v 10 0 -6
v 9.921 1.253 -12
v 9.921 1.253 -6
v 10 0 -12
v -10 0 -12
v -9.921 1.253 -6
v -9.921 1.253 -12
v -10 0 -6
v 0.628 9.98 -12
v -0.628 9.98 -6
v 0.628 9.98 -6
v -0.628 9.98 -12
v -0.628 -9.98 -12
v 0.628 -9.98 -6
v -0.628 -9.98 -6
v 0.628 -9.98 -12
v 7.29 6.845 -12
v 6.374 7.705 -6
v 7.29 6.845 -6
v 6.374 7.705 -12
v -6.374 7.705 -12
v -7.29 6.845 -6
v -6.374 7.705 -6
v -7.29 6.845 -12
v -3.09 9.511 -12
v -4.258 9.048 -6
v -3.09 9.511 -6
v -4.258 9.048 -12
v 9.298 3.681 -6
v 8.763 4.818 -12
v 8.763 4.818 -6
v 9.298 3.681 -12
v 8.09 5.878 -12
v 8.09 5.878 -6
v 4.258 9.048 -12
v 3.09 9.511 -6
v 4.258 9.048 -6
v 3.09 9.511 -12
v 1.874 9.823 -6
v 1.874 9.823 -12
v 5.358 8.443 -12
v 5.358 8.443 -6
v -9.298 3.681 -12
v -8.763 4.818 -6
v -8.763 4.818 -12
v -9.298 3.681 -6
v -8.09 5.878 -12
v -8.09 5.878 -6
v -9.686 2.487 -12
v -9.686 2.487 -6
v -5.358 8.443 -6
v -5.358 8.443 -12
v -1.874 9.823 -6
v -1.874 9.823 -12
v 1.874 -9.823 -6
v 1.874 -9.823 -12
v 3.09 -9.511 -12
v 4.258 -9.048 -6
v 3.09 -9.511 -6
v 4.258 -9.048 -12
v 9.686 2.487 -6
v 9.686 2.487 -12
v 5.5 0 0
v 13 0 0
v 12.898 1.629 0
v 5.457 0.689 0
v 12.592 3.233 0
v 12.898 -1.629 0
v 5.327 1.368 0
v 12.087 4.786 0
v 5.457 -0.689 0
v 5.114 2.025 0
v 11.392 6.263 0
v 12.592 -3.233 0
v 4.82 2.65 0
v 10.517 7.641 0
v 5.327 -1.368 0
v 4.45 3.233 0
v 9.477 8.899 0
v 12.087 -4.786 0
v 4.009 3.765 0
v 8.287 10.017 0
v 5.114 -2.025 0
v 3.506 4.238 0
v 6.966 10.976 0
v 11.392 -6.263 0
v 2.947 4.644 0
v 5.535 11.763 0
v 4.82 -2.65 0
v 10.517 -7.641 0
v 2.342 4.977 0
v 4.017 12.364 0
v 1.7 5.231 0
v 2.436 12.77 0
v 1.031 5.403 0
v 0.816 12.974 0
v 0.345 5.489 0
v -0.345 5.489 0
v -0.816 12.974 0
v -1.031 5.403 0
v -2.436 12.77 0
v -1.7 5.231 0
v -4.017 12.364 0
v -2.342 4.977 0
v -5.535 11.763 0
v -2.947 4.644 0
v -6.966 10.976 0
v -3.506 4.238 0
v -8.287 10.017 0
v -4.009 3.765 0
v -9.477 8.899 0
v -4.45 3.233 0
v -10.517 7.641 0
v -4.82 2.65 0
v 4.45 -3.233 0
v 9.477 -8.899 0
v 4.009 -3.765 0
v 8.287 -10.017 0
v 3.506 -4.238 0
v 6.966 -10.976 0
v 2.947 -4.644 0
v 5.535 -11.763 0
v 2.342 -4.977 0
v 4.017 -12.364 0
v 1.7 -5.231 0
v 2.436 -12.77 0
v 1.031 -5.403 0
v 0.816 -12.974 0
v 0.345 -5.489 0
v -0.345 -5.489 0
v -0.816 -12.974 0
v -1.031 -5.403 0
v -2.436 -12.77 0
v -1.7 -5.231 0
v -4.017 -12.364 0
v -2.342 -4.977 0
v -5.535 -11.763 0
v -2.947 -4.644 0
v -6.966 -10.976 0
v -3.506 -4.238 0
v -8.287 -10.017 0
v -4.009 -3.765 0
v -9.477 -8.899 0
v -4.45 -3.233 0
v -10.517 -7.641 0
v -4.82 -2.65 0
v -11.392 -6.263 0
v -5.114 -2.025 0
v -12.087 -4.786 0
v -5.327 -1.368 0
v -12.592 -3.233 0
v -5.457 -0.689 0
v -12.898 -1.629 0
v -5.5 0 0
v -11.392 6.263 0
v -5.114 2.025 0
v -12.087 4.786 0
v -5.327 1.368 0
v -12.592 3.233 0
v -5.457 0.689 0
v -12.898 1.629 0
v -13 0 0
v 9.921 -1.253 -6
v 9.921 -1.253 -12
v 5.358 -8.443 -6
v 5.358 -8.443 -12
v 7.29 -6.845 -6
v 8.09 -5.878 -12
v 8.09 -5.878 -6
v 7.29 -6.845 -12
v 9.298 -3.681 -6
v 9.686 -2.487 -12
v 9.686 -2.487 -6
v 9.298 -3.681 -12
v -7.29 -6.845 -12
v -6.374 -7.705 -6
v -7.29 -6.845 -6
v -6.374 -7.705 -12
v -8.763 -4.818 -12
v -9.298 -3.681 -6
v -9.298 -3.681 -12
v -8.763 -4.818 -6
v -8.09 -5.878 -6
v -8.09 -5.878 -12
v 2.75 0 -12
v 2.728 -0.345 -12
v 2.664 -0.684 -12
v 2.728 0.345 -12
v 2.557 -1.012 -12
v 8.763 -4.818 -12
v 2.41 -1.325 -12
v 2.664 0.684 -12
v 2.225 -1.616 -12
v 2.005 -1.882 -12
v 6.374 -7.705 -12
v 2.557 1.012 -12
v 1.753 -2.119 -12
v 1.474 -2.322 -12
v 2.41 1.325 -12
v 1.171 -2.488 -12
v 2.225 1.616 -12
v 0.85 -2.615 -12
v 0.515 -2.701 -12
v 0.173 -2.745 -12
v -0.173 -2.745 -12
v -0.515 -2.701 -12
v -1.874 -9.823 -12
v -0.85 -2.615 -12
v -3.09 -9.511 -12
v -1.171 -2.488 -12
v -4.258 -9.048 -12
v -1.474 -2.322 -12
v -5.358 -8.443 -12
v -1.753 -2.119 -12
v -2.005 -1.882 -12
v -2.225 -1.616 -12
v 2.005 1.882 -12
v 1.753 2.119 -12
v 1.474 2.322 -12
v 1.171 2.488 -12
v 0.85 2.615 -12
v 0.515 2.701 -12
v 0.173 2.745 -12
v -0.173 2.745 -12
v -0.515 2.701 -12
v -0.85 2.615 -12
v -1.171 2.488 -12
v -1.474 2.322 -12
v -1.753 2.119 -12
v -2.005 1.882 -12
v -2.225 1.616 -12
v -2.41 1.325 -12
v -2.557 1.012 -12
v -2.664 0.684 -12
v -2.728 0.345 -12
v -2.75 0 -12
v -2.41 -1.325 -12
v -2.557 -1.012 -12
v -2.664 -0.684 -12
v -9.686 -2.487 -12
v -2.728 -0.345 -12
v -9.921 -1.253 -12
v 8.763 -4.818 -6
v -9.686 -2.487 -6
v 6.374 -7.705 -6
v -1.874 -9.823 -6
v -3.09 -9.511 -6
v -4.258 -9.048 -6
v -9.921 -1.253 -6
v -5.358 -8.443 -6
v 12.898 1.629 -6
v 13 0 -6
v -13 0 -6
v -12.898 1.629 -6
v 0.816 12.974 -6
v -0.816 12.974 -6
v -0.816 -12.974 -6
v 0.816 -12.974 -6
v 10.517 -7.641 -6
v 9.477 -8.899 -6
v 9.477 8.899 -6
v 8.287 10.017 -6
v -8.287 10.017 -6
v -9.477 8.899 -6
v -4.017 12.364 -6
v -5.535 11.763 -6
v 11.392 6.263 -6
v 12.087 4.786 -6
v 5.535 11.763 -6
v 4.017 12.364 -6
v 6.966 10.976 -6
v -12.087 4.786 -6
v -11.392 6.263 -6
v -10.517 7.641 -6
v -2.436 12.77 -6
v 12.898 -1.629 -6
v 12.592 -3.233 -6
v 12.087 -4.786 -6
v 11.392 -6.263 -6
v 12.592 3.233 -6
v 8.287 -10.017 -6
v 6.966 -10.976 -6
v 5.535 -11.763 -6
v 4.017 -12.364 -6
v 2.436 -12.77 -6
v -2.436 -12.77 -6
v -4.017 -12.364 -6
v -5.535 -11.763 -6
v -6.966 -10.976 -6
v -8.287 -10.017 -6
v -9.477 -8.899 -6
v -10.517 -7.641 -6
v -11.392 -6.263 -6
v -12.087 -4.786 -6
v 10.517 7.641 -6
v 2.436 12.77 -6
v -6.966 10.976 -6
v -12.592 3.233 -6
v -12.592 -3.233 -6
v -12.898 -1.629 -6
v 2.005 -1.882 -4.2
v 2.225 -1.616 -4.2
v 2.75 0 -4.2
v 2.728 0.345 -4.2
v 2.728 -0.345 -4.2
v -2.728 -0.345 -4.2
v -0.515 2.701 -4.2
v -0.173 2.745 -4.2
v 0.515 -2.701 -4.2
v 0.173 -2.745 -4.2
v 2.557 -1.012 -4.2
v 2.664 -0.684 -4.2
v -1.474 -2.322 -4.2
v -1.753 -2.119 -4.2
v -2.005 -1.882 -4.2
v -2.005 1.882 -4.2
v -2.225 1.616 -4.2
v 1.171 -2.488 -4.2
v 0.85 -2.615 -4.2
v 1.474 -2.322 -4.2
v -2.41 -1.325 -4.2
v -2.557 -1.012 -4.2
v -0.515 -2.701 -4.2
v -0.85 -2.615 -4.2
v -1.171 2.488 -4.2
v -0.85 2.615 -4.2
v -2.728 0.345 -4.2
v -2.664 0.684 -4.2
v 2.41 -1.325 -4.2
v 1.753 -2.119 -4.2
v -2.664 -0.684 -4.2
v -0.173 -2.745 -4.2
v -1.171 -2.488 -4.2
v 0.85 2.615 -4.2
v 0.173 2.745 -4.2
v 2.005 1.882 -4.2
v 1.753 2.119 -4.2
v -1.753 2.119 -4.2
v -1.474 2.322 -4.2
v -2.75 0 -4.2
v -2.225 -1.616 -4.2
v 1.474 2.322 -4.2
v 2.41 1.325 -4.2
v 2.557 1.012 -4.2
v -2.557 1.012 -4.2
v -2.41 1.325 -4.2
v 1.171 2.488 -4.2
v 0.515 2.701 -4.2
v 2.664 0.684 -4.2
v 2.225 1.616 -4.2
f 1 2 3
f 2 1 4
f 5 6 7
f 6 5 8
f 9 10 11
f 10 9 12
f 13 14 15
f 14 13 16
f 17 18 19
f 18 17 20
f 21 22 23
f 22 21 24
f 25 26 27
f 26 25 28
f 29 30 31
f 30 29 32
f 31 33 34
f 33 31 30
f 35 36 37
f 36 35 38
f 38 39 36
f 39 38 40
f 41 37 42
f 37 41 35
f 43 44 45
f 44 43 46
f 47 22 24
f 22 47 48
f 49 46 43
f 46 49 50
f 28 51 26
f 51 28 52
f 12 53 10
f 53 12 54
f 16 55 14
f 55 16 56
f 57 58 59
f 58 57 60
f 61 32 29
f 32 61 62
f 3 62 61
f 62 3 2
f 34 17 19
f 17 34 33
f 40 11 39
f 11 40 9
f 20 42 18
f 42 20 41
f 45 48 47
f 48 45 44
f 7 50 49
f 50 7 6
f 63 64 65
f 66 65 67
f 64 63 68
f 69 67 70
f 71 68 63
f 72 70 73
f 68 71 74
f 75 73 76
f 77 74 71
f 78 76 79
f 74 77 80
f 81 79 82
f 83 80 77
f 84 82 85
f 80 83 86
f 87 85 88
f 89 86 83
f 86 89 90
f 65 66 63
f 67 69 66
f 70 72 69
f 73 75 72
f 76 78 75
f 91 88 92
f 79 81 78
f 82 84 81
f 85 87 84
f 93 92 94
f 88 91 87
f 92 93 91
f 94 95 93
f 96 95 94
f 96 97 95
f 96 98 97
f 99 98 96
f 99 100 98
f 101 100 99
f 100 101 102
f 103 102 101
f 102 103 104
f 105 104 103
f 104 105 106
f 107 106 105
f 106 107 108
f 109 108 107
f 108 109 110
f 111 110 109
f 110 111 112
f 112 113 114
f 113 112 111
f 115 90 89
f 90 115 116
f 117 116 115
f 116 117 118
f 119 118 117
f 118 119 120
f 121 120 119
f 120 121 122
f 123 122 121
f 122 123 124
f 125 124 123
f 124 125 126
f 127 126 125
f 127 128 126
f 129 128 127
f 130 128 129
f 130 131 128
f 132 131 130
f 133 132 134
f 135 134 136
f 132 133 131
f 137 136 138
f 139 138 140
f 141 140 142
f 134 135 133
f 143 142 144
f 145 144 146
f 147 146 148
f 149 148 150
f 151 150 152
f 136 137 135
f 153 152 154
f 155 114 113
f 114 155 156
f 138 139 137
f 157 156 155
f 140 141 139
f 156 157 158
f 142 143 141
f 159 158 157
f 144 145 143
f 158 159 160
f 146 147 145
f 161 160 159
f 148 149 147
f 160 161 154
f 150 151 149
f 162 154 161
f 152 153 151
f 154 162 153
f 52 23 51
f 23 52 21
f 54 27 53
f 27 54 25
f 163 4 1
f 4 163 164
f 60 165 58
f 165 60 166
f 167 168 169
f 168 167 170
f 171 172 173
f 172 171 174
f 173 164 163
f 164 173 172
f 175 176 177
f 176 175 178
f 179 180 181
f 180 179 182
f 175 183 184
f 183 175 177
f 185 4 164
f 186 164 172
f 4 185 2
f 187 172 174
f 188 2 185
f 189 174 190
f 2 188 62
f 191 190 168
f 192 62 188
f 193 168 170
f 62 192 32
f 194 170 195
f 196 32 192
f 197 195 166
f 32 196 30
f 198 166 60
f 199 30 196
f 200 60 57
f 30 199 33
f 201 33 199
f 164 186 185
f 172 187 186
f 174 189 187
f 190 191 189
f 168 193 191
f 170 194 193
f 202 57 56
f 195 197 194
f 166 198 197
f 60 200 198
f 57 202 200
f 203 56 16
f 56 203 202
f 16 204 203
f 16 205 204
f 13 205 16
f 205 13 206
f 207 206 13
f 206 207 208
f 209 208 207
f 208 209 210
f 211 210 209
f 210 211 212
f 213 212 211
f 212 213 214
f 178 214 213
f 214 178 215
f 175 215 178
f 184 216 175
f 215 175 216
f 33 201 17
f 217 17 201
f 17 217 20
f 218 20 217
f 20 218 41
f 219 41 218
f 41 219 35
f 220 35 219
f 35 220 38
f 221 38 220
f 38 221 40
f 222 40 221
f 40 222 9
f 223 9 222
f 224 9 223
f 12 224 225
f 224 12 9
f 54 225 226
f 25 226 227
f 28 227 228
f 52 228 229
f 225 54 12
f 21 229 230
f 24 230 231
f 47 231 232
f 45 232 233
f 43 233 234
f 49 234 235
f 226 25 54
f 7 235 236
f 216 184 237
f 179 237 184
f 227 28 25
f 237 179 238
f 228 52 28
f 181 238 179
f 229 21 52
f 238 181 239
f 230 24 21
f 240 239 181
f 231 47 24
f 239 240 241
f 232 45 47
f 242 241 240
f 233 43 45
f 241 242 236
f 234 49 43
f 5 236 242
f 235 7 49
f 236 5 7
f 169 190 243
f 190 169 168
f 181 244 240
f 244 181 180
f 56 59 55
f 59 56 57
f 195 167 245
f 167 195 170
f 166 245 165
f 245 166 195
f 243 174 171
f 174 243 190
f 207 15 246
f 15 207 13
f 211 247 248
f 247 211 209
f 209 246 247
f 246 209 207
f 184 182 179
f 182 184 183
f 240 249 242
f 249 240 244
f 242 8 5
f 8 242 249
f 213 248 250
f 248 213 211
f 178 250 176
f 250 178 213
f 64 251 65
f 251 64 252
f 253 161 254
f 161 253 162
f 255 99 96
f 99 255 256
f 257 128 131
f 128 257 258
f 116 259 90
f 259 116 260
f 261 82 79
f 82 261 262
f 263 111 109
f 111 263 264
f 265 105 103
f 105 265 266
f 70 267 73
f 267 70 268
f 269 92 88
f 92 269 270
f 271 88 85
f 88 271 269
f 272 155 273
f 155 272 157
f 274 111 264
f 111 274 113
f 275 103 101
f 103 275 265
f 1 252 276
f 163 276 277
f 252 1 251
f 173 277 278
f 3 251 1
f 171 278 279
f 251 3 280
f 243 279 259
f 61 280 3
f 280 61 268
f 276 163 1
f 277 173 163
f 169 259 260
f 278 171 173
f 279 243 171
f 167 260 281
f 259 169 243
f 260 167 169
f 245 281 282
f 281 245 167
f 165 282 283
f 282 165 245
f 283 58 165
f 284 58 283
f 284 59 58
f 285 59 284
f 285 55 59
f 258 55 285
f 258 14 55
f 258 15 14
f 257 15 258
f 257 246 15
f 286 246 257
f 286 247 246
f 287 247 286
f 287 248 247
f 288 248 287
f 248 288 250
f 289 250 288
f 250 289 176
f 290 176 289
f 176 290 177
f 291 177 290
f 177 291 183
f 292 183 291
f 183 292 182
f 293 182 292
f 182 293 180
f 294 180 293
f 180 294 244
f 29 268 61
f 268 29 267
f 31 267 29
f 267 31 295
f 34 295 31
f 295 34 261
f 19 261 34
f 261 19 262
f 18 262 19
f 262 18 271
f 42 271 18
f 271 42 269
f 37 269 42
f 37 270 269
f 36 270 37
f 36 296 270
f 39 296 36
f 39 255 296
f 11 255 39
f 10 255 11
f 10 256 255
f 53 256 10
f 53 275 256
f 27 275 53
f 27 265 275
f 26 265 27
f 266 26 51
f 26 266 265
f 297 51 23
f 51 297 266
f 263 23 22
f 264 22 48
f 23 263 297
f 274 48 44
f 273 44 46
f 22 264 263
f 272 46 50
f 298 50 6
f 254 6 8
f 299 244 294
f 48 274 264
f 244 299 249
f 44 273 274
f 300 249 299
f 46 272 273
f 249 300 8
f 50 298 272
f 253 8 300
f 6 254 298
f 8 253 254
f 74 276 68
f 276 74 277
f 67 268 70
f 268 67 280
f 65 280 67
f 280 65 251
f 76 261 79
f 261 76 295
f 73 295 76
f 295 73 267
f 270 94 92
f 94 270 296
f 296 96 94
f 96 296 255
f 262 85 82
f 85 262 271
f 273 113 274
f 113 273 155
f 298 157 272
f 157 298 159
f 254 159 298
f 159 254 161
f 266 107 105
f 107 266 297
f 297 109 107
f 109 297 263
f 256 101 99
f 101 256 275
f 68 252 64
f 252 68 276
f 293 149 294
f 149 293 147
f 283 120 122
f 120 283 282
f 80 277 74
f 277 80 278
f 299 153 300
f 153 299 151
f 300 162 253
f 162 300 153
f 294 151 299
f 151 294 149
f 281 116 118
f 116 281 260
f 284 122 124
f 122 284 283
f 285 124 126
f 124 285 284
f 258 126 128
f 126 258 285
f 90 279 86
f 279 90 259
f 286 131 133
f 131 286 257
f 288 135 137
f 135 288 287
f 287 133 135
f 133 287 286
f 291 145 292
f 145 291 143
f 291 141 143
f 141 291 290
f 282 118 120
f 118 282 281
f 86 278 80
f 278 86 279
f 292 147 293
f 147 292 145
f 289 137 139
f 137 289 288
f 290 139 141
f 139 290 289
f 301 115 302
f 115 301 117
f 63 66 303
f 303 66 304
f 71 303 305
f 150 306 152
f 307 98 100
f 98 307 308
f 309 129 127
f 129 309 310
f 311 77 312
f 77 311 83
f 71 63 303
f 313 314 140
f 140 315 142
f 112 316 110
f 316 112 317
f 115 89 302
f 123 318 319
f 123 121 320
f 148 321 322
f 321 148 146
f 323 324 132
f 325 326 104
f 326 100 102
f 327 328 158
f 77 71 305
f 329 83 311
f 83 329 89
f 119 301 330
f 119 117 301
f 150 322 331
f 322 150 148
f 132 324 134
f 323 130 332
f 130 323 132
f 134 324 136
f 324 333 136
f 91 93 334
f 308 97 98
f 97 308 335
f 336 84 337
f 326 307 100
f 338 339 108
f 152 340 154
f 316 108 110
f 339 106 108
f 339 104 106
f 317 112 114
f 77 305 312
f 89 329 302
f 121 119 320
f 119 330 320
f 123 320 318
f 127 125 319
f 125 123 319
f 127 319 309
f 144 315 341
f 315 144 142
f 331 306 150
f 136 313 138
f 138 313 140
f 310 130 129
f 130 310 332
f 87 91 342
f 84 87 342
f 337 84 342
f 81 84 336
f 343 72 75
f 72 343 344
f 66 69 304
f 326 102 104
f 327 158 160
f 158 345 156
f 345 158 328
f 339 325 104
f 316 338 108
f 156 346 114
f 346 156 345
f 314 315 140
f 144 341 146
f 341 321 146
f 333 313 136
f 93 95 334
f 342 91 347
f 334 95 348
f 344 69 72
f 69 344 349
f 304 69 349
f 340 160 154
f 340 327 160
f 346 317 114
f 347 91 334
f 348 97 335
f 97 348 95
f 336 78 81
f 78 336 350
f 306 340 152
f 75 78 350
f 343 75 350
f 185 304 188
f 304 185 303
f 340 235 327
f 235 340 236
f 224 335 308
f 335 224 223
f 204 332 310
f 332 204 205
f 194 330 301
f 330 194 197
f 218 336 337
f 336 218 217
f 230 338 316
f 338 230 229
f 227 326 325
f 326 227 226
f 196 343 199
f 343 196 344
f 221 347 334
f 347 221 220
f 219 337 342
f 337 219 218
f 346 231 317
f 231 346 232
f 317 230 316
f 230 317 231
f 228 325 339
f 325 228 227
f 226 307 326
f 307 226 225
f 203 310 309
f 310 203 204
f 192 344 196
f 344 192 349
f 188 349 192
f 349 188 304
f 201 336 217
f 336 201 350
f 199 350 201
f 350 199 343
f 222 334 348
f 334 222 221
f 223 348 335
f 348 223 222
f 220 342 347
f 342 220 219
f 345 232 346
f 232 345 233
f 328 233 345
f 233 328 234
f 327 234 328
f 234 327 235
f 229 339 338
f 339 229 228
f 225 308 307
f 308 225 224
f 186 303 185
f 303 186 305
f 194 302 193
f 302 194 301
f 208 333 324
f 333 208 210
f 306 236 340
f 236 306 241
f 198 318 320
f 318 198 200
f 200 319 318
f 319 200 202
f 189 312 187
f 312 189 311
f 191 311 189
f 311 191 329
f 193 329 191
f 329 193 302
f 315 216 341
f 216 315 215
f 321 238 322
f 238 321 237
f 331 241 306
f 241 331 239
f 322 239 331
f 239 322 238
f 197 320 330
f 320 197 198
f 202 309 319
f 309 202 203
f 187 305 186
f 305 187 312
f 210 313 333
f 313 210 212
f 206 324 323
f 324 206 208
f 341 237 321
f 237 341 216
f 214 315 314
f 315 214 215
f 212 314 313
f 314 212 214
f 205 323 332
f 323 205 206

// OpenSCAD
$fn = 50;


difference() {
	union() {
		translate(v = [0, 0, -12.0000000000]) {
			cylinder(h = 12, r = 10.0000000000);
		}
		translate(v = [0, 0, -6.0000000000]) {
			cylinder(h = 6, r = 13.0000000000);
		}
	}
	union() {
		translate(v = [0, 0, 0]) {
			rotate(a = [0, 0, 0]) {
				difference() {
					union() {
						#translate(v = [0, 0, -12.0000000000]) {
							cylinder(h = 12, r = 2.2500000000);
						}
						#translate(v = [0, 0, -4.2000000000]) {
							cylinder(h = 4.2000000000, r1 = 2.7500000000, r2 = 5.5000000000);
						}
						#translate(v = [0, 0, -12.0000000000]) {
							cylinder(h = 12, r = 2.7500000000);
						}
						#translate(v = [0, 0, -12.0000000000]) {
							cylinder(h = 12, r = 2.2500000000);
						}
					}
					union();
				}
			}
		}
	}
}
